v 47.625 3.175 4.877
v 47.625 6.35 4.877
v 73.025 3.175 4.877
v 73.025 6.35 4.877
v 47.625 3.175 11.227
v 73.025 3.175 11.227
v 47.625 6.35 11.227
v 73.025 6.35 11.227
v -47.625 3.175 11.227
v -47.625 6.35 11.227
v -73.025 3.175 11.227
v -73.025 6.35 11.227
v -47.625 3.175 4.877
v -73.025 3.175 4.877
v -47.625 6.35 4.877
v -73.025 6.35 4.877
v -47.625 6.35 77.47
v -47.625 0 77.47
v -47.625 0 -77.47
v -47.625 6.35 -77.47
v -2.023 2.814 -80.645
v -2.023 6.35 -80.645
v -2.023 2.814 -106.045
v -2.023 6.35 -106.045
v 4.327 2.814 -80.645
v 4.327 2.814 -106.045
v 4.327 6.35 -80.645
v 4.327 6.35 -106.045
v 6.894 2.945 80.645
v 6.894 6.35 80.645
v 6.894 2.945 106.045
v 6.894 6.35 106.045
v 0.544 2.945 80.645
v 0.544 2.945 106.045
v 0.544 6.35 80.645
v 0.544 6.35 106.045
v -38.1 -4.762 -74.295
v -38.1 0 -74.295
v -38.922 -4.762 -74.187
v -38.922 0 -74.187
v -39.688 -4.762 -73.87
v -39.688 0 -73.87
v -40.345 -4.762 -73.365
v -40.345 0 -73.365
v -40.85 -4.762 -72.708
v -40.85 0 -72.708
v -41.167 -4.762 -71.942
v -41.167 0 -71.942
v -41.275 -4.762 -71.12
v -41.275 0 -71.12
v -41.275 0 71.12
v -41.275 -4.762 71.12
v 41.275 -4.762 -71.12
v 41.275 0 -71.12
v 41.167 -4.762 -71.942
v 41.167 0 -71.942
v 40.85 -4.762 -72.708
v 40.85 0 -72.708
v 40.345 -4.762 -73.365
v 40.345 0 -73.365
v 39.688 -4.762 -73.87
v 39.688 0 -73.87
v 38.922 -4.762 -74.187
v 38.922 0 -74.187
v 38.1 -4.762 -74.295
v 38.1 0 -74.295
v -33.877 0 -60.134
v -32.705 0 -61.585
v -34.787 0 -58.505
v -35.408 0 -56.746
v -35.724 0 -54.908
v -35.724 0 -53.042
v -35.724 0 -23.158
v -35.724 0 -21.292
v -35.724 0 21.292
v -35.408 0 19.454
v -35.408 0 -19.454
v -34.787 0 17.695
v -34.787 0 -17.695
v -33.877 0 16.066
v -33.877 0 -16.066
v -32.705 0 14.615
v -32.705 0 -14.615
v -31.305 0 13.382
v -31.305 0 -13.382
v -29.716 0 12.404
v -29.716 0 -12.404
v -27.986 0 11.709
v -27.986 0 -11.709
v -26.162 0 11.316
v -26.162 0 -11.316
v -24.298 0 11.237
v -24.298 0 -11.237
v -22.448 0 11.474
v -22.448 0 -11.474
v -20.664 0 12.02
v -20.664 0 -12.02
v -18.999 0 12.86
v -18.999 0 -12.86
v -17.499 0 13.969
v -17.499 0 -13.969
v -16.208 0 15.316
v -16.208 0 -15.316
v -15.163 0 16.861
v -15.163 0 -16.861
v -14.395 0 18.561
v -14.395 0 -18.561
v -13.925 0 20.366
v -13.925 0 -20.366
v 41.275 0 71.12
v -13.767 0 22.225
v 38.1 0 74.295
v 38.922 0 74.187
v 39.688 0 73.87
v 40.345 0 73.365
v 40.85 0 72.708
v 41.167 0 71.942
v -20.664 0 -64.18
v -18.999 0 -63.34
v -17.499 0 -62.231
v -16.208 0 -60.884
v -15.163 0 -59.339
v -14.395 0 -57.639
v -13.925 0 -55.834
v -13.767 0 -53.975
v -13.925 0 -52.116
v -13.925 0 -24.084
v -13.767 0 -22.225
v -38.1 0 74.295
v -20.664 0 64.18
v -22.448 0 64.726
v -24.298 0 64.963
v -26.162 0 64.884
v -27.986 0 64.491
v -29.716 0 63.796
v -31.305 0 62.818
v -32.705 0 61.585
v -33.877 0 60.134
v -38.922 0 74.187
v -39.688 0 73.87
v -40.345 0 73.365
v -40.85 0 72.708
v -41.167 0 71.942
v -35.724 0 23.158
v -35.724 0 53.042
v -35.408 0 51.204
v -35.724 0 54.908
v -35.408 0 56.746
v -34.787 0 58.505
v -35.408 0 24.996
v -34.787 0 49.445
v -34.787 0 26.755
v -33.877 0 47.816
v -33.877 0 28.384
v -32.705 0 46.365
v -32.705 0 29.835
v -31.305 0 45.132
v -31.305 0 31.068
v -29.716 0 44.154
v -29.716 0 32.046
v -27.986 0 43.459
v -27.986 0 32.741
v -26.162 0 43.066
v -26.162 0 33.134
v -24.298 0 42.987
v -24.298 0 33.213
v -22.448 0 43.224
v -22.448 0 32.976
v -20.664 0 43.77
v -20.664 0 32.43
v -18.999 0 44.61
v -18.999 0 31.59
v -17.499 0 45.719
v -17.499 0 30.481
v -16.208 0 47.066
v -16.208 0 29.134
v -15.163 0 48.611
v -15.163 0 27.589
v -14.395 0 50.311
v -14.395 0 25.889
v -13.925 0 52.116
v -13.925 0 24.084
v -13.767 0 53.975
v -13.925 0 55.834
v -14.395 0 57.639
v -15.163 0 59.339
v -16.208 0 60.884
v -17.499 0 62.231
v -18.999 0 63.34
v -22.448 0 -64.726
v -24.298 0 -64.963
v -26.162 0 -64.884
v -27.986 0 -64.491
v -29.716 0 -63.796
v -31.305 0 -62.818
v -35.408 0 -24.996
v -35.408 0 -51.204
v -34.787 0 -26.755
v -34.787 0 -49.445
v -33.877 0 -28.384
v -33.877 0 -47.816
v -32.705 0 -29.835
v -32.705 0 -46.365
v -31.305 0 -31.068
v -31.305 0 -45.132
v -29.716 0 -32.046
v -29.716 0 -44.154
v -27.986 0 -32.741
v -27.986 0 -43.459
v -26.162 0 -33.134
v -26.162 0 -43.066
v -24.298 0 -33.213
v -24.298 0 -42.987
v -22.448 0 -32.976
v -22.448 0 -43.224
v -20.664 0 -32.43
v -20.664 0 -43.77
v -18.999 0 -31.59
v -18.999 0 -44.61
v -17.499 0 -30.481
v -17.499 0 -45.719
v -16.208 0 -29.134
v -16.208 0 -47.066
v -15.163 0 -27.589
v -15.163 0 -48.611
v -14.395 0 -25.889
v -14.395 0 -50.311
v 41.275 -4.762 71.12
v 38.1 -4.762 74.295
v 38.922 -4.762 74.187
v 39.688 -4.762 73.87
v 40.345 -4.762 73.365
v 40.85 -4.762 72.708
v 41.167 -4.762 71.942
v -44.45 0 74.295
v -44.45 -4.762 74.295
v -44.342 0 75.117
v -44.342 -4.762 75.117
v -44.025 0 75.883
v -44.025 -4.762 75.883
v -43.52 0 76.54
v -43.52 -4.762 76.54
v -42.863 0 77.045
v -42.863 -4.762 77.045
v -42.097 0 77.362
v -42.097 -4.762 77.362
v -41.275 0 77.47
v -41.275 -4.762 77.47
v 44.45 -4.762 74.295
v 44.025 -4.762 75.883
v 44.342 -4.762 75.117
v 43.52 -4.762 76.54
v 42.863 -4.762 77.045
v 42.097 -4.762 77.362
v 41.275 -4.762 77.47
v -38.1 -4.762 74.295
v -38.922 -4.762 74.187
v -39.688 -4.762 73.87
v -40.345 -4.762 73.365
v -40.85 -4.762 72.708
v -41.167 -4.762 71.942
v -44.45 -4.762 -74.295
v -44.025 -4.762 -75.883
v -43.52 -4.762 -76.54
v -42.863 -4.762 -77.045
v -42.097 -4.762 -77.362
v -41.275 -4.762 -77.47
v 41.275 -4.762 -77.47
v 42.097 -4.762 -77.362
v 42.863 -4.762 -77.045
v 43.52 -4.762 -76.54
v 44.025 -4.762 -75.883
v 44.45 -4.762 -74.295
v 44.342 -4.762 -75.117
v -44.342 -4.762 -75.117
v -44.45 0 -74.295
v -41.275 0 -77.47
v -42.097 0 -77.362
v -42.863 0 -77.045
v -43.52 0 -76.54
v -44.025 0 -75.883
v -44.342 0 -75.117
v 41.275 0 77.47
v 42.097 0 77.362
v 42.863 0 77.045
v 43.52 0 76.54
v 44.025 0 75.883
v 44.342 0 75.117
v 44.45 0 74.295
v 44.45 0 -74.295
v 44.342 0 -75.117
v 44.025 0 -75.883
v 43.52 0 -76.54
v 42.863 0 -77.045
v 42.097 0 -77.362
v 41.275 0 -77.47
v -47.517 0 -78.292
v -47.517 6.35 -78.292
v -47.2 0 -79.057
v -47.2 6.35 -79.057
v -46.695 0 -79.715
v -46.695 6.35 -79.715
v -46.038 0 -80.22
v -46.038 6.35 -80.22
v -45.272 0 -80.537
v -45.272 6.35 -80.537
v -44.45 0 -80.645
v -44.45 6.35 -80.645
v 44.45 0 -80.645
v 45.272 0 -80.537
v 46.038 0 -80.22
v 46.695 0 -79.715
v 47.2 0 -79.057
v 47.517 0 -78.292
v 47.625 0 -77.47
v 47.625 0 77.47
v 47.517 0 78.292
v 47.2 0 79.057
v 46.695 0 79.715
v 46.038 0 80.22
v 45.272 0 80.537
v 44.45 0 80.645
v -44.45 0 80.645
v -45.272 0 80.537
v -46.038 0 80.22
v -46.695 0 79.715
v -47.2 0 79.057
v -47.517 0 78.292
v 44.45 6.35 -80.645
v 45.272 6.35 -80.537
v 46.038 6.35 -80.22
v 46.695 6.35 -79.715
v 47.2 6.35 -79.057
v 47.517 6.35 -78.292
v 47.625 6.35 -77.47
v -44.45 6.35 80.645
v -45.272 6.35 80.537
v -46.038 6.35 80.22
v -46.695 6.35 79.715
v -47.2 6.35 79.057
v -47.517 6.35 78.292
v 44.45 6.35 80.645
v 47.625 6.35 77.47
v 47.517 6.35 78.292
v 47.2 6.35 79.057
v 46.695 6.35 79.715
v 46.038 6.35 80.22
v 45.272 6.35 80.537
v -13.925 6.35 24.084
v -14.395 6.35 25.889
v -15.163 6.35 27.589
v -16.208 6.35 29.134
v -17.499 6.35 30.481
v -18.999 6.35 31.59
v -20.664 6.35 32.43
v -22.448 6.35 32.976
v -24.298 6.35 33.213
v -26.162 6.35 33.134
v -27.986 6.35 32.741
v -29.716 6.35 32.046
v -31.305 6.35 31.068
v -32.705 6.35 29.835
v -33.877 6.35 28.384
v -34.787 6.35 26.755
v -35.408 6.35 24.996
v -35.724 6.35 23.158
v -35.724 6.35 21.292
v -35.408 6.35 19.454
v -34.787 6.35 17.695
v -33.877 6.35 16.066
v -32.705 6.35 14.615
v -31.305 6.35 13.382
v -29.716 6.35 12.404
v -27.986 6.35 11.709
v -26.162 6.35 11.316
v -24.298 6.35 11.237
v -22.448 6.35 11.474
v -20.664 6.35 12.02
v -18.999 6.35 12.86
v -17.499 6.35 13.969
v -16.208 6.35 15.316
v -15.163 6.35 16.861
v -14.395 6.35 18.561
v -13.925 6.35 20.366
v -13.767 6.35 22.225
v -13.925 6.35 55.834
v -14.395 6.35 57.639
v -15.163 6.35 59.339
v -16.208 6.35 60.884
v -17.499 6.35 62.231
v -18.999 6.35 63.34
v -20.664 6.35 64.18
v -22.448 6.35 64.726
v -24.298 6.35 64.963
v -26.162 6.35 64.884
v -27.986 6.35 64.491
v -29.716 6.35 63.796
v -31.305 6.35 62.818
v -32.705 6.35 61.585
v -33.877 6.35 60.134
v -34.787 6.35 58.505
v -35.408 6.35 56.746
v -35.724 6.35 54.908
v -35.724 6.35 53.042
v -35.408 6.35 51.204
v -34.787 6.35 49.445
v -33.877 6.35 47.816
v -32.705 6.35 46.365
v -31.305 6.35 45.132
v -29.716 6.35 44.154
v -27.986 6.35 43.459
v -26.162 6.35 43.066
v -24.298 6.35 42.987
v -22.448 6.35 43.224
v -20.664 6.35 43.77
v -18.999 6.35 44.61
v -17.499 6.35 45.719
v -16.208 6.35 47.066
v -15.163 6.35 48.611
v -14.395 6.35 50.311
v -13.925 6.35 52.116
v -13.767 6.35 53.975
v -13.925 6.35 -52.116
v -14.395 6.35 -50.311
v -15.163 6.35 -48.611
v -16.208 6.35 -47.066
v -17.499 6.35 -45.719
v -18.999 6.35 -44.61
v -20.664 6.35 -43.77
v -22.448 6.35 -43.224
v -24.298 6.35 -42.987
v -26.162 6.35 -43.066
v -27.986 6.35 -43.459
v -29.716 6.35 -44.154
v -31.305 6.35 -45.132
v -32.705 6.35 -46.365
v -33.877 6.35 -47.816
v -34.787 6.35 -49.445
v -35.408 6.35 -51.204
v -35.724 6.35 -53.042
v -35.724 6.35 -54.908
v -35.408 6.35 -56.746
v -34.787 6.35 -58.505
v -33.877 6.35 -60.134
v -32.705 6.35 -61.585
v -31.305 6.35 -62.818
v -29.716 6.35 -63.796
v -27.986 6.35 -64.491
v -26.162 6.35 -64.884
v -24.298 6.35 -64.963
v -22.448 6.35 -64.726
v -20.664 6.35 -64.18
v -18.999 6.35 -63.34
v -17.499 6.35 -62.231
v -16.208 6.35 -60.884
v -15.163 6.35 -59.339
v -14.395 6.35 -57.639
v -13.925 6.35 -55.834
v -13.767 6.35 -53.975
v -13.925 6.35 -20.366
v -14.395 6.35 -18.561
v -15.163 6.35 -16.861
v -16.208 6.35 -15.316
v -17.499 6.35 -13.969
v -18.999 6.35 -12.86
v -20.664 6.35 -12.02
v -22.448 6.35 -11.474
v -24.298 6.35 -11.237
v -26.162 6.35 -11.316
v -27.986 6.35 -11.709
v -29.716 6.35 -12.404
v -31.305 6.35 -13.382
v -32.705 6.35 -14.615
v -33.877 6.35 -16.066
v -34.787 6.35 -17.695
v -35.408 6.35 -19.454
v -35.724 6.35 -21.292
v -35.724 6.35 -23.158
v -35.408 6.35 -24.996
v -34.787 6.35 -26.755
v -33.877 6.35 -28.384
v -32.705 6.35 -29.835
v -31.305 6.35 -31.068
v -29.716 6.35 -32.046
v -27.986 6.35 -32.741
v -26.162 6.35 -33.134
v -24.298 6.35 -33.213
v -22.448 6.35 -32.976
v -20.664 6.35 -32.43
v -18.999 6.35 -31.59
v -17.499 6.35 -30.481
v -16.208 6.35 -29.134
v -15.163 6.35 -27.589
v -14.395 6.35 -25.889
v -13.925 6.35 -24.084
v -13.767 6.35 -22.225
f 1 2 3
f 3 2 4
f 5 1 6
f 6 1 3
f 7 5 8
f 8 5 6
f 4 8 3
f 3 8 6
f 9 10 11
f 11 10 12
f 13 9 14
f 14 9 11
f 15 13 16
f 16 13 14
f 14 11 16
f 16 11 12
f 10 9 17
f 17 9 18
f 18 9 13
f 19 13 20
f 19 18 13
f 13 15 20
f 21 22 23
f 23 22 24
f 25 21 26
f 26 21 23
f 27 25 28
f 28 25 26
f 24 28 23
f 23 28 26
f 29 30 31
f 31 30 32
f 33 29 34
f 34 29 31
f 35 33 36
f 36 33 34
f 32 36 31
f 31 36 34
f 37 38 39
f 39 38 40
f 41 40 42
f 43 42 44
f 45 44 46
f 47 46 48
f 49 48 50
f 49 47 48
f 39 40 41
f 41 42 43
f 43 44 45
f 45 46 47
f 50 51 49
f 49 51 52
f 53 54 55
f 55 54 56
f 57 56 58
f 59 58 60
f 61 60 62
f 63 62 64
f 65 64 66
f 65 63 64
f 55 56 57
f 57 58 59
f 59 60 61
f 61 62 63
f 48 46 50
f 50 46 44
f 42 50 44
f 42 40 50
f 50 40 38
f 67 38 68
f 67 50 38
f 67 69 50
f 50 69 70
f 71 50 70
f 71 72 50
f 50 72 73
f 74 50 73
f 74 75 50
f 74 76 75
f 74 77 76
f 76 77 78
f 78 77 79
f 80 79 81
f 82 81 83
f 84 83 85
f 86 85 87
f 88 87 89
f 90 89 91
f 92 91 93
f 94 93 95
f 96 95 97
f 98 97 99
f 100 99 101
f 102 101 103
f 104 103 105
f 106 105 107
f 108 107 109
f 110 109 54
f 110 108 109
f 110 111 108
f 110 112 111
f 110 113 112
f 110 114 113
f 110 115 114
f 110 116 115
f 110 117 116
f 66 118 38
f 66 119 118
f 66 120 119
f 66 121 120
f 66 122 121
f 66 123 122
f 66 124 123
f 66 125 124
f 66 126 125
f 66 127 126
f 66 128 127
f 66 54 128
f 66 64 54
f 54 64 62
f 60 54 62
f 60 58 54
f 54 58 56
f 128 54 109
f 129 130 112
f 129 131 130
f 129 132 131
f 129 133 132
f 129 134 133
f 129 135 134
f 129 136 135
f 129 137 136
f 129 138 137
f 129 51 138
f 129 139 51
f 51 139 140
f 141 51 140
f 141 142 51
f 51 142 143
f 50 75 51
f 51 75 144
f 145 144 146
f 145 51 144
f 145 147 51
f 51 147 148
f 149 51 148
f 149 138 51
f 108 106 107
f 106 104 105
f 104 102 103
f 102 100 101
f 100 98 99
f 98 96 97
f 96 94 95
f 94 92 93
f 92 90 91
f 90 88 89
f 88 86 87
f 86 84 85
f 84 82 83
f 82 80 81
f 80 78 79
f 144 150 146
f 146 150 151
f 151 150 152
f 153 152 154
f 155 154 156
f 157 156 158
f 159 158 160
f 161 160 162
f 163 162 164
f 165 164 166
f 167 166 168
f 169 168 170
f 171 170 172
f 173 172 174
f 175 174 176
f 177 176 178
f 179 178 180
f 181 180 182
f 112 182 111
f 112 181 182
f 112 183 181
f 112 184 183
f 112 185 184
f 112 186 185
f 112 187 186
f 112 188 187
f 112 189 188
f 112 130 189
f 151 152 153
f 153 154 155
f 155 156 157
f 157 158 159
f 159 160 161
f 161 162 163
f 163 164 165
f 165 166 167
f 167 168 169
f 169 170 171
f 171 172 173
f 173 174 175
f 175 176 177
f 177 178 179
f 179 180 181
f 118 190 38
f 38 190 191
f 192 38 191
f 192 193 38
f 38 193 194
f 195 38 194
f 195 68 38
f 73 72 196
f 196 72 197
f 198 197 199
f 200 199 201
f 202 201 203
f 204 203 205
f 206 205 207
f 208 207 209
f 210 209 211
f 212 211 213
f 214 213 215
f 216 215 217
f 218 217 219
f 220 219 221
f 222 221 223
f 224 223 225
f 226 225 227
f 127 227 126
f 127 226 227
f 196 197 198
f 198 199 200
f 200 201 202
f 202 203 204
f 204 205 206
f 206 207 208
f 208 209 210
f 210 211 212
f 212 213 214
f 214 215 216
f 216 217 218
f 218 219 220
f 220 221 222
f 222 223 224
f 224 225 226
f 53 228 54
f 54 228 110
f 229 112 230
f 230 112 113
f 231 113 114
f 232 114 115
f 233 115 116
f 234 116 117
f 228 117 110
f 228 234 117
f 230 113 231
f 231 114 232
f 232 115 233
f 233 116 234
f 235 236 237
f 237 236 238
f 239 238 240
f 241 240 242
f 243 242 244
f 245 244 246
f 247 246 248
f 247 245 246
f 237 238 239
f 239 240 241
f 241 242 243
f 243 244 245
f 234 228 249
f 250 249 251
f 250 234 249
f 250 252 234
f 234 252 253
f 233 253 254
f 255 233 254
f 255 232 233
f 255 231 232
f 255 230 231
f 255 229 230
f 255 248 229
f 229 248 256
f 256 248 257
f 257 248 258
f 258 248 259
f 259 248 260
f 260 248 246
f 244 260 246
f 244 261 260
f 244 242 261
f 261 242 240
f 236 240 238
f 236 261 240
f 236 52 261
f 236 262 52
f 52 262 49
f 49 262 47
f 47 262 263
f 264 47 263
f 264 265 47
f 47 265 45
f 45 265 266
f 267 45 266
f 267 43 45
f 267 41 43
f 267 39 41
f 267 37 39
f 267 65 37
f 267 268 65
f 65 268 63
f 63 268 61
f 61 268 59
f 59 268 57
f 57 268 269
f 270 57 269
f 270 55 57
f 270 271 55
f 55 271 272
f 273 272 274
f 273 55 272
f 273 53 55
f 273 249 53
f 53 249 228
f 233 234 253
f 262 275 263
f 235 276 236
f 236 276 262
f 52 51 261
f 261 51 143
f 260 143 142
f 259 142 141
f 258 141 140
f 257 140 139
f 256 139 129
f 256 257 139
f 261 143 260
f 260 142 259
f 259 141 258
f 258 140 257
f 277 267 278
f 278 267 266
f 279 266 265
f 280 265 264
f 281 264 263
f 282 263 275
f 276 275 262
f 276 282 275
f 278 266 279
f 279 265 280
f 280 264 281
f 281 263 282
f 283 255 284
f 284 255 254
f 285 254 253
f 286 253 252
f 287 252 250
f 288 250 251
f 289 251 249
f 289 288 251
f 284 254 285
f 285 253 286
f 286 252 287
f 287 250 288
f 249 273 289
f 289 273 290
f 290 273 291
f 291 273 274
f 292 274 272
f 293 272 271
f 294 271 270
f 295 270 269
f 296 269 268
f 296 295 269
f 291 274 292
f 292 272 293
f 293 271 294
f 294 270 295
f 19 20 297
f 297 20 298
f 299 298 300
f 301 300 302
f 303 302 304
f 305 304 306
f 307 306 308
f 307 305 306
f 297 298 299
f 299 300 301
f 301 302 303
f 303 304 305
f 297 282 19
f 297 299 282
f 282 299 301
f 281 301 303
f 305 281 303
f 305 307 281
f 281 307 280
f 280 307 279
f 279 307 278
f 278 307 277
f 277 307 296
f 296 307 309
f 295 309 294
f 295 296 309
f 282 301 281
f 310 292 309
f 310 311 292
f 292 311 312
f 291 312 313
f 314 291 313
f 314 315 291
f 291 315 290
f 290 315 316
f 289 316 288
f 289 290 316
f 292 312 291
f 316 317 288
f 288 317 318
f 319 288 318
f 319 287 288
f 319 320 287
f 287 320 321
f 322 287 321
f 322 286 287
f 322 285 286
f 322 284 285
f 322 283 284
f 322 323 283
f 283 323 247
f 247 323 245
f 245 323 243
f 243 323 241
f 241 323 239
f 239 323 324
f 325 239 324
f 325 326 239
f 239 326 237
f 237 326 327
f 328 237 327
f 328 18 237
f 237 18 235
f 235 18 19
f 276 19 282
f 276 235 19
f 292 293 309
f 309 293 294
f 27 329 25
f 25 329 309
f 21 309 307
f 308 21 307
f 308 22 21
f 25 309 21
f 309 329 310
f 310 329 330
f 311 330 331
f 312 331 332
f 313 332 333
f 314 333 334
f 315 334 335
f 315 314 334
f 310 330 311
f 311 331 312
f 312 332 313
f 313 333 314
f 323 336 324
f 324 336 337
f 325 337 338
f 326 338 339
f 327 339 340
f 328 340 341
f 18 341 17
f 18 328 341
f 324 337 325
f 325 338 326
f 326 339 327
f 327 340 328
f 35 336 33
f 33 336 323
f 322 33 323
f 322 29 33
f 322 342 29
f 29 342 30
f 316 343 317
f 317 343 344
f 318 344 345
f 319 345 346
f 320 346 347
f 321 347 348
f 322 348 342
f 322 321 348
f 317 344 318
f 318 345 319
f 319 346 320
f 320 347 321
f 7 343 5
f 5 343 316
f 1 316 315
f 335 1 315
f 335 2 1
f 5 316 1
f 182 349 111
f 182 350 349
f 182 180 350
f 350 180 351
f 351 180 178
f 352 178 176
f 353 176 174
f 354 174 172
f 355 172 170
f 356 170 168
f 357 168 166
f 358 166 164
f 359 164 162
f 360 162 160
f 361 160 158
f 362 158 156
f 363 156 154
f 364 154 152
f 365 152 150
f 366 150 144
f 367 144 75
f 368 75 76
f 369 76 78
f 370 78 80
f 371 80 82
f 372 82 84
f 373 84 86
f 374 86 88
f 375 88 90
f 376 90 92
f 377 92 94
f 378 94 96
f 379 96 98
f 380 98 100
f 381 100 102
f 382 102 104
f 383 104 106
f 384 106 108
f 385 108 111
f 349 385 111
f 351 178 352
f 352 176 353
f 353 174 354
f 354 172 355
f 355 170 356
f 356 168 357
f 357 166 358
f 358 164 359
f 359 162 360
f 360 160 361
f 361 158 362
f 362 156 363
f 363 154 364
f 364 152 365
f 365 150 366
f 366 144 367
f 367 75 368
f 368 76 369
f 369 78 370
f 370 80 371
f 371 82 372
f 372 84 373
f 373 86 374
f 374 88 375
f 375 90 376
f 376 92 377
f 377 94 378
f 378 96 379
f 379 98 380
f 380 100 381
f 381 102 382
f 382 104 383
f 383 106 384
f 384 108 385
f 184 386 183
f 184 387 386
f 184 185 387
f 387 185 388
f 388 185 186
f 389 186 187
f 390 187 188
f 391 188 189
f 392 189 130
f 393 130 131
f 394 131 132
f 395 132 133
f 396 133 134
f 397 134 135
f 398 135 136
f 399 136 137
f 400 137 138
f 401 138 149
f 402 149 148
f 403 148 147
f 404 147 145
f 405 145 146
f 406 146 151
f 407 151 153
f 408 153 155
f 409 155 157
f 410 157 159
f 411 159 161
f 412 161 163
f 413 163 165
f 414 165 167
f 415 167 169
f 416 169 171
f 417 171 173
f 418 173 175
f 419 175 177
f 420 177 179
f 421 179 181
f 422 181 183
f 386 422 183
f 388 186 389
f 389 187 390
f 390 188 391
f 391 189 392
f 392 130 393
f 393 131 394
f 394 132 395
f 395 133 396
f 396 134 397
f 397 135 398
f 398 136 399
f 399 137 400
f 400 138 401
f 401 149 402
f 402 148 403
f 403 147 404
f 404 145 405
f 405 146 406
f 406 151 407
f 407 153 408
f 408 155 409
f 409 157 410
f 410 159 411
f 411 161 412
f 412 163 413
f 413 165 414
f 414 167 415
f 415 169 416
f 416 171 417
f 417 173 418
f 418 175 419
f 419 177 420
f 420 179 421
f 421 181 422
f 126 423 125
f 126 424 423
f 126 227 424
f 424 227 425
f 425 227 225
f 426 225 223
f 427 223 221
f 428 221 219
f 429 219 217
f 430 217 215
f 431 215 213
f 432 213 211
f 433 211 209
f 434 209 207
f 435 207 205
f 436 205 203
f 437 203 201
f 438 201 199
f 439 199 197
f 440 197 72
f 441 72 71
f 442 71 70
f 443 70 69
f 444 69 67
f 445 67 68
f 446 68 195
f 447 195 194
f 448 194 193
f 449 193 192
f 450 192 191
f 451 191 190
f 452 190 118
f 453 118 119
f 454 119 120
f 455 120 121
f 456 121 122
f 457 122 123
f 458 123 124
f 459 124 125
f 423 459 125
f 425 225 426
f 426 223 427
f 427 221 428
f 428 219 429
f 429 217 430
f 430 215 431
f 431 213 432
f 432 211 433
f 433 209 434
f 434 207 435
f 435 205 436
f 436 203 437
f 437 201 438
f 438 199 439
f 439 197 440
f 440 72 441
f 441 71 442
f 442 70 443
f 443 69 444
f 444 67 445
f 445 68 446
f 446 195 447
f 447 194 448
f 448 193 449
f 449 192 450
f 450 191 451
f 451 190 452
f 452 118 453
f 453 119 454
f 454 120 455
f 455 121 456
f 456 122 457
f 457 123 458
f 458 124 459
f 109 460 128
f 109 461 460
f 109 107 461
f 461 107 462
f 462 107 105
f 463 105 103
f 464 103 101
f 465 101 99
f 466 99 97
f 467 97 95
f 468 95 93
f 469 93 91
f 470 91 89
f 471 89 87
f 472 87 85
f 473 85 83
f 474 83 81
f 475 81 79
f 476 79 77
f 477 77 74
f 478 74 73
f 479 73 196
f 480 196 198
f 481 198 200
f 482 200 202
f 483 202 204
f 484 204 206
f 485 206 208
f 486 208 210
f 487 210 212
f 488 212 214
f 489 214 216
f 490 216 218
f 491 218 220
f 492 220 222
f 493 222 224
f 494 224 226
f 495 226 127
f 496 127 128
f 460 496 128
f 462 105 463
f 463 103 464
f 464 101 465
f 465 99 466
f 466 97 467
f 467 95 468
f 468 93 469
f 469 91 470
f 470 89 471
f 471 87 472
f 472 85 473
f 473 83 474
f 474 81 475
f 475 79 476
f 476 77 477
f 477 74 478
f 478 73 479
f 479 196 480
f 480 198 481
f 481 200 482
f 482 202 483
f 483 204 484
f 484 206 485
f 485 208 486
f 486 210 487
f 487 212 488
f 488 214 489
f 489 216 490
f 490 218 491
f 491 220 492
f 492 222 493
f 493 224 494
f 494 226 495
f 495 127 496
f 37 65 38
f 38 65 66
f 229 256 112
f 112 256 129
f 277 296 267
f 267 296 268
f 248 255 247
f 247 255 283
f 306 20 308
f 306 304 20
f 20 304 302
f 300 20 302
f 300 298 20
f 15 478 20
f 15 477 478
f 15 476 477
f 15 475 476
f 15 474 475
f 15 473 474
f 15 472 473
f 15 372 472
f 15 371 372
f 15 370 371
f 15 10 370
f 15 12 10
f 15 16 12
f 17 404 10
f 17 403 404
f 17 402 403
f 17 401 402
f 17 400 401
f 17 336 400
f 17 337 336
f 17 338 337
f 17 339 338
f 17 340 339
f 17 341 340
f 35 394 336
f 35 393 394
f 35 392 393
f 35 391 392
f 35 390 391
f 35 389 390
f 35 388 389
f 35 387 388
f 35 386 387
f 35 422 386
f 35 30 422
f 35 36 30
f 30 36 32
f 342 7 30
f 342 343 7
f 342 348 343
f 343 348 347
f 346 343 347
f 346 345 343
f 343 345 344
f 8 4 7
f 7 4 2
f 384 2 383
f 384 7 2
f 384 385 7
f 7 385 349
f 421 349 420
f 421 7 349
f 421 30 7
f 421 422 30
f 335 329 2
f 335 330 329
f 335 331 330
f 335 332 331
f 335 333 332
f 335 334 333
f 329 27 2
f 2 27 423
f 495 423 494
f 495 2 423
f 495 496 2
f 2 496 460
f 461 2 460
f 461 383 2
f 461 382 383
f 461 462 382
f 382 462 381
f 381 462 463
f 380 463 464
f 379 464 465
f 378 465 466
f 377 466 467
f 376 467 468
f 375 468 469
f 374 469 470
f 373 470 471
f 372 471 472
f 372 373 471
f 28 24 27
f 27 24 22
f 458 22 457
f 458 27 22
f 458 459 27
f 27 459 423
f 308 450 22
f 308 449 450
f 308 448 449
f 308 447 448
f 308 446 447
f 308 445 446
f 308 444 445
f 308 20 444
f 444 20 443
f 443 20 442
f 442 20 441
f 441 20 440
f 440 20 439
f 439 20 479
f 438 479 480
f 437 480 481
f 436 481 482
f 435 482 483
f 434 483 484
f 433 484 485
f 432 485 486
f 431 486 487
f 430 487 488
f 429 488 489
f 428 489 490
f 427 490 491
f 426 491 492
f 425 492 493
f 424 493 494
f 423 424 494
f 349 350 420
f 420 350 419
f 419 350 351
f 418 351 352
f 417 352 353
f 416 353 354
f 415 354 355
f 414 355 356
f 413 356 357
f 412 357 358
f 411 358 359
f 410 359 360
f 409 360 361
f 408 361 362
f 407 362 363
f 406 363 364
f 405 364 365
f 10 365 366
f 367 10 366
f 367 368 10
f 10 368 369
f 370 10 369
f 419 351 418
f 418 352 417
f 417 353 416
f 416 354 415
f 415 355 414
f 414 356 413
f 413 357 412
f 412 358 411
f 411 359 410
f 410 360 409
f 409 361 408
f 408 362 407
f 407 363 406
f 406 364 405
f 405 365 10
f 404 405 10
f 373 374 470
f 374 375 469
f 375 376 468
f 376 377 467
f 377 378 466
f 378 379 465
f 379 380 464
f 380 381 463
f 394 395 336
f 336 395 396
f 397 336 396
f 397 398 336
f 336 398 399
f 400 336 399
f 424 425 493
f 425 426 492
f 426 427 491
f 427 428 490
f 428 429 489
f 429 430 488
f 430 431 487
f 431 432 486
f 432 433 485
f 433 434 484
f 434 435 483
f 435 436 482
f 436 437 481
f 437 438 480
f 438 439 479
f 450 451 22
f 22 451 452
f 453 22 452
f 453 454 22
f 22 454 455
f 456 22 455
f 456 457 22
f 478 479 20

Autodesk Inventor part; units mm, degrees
ref_plane "YZ Plane" through (0, 0, 0) normal (1, 0, 0) x (0, 1, 0)
ref_plane "XZ Plane" through (0, 0, 0) normal (0, 1, 0) x (-1, 0, 0)
ref_plane "XY Plane" through (0, 0, 0) normal (0, 0, 1) x (1, 0, 0)
sketch "Sketch1" plane through (0, 0, 0) normal (0, 1, 0) x (-1, 0, 0)
  line L0 (-47.625, 80.645) -> (47.625, 80.645)
  line L1 (47.625, 80.645) -> (47.625, -80.645)
  line L2 (47.625, -80.645) -> (-47.625, -80.645)
  line L3 (-47.625, -80.645) -> (-47.625, 80.645)
  line L4 (-47.625, 80.645) -> (47.625, -80.645) construction
  line L5 (47.625, 80.645) -> (-47.625, -80.645) construction
  point P0 (0, 0)
  dimension "d0" = 161.29
  dimension "d1" = 95.25
extrude "Extrusion1" add sketch "Sketch1" along normal blind 6.35
sketch "Sketch3" plane through (0, 0, 0) normal (0, -1, 0) x (1, 0, 0)
  line L0 (-44.45, 77.47) -> (44.45, 77.47)
  line L1 (44.45, 77.47) -> (44.45, -77.47)
  line L2 (44.45, -77.47) -> (-44.45, -77.47)
  line L3 (-44.45, -77.47) -> (-44.45, 77.47)
  line L4 (-44.45, 77.47) -> (44.45, -77.47) construction
  line L5 (44.45, 77.47) -> (-44.45, -77.47) construction
  line L6 (-41.275, 74.295) -> (41.275, 74.295)
  line L7 (41.275, 74.295) -> (41.275, -74.295)
  line L8 (41.275, -74.295) -> (-41.275, -74.295)
  line L9 (-41.275, -74.295) -> (-41.275, 74.295)
  line L10 (-41.275, 74.295) -> (41.275, -74.295) construction
  line L11 (41.275, 74.295) -> (-41.275, -74.295) construction
  point P0 (0, 0)
  dimension "d4" = 154.94
  dimension "d5" = 88.9
  dimension "d6" = 148.59
  dimension "d7" = 82.55
extrude "Extrusion2" add sketch "Sketch3" along normal blind 4.7625
sketch "Sketch4" plane through (0, 6.35, 0) normal (0, 1, 0) x (1, 0, 0)
  line L0 (24.765, -53.975) -> (-24.765, -53.975) construction
  line L1 (-24.765, -53.975) -> (-24.765, 53.975) construction
  line L2 (-24.765, 53.975) -> (24.765, 53.975) construction
  line L3 (24.765, 53.975) -> (24.765, -53.975) construction
  line L4 (24.765, -53.975) -> (-24.765, 53.975) construction
  line L5 (-24.765, -53.975) -> (24.765, 53.975) construction
  circle A0 centre (-24.765, -53.975) radius 10.9982
  circle A1 centre (-24.765, 53.975) radius 10.9982
  circle A2 centre (-24.765, -22.225) radius 10.9982
  circle A3 centre (-24.765, 22.225) radius 10.9982
  line L6 (47.625, -80.645) -> (47.625, 80.645) projected
  point P0 (0, 0)
  dimension "d12" = 21.9964
  dimension "d13" = 21.9964
  dimension "d15" = 21.9964
  dimension "d17" = 31.75
  dimension "d18" = 21.9964
  dimension "d19" = 31.75
  dimension "d25" = 44.45
  dimension "d26" = 72.39
extrude "Extrusion3" cut sketch "Sketch4" against normal up to next
fillet "Fillet1" radius 3.175 12 edges at (47.625, 3.175, 80.645) (-47.625, 3.175, 80.645) (47.625, 3.175, -80.645) (-47.625, 3.175, -80.645) (44.45, -2.3813, -77.47) (44.45, -2.3813, 77.47) (-44.45, -2.3813, -77.47) (-41.275, -2.3813, 74.295) (-44.45, -2.3813, 77.47) (41.275, -2.3813, 74.295) (41.275, -2.3813, -74.295) (-41.275, -2.3813, -74.295)
sketch "Sketch5" plane through (44.45, 0, -80.645) normal (0, 0, -1) x (-1, 0, 0)
  line L0 (88.9, 6.35) -> (0, 6.35) projected
  line L1 (40.1232, 6.35) -> (46.4732, 6.35)
  line L2 (46.4732, 6.35) -> (46.4732, 2.8141)
  line L3 (46.4732, 2.8141) -> (40.1232, 2.8141)
  line L4 (40.1232, 2.8141) -> (40.1232, 6.35)
  point P0 (44.45, 0)
  dimension "d37" = 6.35
sketch "Sketch6" plane through (-47.625, 0, -77.47) normal (-1, 0, 0) x (0, 0, 1)
  line L0 (0, 6.35) -> (154.94, 6.35) projected
  line L1 (88.6968, 6.35) -> (88.6968, 0) projected
  line L2 (82.3468, 6.35) -> (88.6968, 6.35)
  line L3 (88.6968, 6.35) -> (88.6968, 3.175)
  line L4 (88.6968, 3.175) -> (82.3468, 3.175)
  line L5 (82.3468, 3.175) -> (82.3468, 6.35)
  point P0 (77.47, 0)
  dimension "d38" = 6.35
sketch "Sketch7" plane through (47.625, 0, 77.47) normal (1, 0, 0) x (0, 0, -1)
  line L0 (154.94, 6.35) -> (0, 6.35) projected
  line L1 (66.2432, 6.35) -> (66.2432, 0) projected
  line L2 (72.5932, 6.35) -> (66.2432, 6.35)
  line L3 (66.2432, 6.35) -> (66.2432, 3.175)
  line L4 (66.2432, 3.175) -> (72.5932, 3.175)
  line L5 (72.5932, 3.175) -> (72.5932, 6.35)
  point P0 (77.47, 0)
  dimension "d36" = 6.35
sketch "Sketch8" plane through (-44.45, 0, 80.645) normal (0, 0, 1) x (1, 0, 0)
  line L0 (0, 6.35) -> (88.9, 6.35) projected
  line L1 (51.344, 6.35) -> (44.994, 6.35)
  line L2 (44.994, 6.35) -> (44.994, 2.9455)
  line L3 (44.994, 2.9455) -> (51.344, 2.9455)
  line L4 (51.344, 2.9455) -> (51.344, 6.35)
  point P0 (44.45, 0)
  dimension "d39" = 6.35
extrude "Extrusion4" add sketch "Sketch8" along normal blind 25.4
extrude "Extrusion5" add sketch "Sketch5" along normal blind 25.4
extrude "Extrusion6" add sketch "Sketch6" along normal blind 25.4
extrude "Extrusion7" add sketch "Sketch7" along normal blind 25.4
properties part number "iceTubeClockTop"
